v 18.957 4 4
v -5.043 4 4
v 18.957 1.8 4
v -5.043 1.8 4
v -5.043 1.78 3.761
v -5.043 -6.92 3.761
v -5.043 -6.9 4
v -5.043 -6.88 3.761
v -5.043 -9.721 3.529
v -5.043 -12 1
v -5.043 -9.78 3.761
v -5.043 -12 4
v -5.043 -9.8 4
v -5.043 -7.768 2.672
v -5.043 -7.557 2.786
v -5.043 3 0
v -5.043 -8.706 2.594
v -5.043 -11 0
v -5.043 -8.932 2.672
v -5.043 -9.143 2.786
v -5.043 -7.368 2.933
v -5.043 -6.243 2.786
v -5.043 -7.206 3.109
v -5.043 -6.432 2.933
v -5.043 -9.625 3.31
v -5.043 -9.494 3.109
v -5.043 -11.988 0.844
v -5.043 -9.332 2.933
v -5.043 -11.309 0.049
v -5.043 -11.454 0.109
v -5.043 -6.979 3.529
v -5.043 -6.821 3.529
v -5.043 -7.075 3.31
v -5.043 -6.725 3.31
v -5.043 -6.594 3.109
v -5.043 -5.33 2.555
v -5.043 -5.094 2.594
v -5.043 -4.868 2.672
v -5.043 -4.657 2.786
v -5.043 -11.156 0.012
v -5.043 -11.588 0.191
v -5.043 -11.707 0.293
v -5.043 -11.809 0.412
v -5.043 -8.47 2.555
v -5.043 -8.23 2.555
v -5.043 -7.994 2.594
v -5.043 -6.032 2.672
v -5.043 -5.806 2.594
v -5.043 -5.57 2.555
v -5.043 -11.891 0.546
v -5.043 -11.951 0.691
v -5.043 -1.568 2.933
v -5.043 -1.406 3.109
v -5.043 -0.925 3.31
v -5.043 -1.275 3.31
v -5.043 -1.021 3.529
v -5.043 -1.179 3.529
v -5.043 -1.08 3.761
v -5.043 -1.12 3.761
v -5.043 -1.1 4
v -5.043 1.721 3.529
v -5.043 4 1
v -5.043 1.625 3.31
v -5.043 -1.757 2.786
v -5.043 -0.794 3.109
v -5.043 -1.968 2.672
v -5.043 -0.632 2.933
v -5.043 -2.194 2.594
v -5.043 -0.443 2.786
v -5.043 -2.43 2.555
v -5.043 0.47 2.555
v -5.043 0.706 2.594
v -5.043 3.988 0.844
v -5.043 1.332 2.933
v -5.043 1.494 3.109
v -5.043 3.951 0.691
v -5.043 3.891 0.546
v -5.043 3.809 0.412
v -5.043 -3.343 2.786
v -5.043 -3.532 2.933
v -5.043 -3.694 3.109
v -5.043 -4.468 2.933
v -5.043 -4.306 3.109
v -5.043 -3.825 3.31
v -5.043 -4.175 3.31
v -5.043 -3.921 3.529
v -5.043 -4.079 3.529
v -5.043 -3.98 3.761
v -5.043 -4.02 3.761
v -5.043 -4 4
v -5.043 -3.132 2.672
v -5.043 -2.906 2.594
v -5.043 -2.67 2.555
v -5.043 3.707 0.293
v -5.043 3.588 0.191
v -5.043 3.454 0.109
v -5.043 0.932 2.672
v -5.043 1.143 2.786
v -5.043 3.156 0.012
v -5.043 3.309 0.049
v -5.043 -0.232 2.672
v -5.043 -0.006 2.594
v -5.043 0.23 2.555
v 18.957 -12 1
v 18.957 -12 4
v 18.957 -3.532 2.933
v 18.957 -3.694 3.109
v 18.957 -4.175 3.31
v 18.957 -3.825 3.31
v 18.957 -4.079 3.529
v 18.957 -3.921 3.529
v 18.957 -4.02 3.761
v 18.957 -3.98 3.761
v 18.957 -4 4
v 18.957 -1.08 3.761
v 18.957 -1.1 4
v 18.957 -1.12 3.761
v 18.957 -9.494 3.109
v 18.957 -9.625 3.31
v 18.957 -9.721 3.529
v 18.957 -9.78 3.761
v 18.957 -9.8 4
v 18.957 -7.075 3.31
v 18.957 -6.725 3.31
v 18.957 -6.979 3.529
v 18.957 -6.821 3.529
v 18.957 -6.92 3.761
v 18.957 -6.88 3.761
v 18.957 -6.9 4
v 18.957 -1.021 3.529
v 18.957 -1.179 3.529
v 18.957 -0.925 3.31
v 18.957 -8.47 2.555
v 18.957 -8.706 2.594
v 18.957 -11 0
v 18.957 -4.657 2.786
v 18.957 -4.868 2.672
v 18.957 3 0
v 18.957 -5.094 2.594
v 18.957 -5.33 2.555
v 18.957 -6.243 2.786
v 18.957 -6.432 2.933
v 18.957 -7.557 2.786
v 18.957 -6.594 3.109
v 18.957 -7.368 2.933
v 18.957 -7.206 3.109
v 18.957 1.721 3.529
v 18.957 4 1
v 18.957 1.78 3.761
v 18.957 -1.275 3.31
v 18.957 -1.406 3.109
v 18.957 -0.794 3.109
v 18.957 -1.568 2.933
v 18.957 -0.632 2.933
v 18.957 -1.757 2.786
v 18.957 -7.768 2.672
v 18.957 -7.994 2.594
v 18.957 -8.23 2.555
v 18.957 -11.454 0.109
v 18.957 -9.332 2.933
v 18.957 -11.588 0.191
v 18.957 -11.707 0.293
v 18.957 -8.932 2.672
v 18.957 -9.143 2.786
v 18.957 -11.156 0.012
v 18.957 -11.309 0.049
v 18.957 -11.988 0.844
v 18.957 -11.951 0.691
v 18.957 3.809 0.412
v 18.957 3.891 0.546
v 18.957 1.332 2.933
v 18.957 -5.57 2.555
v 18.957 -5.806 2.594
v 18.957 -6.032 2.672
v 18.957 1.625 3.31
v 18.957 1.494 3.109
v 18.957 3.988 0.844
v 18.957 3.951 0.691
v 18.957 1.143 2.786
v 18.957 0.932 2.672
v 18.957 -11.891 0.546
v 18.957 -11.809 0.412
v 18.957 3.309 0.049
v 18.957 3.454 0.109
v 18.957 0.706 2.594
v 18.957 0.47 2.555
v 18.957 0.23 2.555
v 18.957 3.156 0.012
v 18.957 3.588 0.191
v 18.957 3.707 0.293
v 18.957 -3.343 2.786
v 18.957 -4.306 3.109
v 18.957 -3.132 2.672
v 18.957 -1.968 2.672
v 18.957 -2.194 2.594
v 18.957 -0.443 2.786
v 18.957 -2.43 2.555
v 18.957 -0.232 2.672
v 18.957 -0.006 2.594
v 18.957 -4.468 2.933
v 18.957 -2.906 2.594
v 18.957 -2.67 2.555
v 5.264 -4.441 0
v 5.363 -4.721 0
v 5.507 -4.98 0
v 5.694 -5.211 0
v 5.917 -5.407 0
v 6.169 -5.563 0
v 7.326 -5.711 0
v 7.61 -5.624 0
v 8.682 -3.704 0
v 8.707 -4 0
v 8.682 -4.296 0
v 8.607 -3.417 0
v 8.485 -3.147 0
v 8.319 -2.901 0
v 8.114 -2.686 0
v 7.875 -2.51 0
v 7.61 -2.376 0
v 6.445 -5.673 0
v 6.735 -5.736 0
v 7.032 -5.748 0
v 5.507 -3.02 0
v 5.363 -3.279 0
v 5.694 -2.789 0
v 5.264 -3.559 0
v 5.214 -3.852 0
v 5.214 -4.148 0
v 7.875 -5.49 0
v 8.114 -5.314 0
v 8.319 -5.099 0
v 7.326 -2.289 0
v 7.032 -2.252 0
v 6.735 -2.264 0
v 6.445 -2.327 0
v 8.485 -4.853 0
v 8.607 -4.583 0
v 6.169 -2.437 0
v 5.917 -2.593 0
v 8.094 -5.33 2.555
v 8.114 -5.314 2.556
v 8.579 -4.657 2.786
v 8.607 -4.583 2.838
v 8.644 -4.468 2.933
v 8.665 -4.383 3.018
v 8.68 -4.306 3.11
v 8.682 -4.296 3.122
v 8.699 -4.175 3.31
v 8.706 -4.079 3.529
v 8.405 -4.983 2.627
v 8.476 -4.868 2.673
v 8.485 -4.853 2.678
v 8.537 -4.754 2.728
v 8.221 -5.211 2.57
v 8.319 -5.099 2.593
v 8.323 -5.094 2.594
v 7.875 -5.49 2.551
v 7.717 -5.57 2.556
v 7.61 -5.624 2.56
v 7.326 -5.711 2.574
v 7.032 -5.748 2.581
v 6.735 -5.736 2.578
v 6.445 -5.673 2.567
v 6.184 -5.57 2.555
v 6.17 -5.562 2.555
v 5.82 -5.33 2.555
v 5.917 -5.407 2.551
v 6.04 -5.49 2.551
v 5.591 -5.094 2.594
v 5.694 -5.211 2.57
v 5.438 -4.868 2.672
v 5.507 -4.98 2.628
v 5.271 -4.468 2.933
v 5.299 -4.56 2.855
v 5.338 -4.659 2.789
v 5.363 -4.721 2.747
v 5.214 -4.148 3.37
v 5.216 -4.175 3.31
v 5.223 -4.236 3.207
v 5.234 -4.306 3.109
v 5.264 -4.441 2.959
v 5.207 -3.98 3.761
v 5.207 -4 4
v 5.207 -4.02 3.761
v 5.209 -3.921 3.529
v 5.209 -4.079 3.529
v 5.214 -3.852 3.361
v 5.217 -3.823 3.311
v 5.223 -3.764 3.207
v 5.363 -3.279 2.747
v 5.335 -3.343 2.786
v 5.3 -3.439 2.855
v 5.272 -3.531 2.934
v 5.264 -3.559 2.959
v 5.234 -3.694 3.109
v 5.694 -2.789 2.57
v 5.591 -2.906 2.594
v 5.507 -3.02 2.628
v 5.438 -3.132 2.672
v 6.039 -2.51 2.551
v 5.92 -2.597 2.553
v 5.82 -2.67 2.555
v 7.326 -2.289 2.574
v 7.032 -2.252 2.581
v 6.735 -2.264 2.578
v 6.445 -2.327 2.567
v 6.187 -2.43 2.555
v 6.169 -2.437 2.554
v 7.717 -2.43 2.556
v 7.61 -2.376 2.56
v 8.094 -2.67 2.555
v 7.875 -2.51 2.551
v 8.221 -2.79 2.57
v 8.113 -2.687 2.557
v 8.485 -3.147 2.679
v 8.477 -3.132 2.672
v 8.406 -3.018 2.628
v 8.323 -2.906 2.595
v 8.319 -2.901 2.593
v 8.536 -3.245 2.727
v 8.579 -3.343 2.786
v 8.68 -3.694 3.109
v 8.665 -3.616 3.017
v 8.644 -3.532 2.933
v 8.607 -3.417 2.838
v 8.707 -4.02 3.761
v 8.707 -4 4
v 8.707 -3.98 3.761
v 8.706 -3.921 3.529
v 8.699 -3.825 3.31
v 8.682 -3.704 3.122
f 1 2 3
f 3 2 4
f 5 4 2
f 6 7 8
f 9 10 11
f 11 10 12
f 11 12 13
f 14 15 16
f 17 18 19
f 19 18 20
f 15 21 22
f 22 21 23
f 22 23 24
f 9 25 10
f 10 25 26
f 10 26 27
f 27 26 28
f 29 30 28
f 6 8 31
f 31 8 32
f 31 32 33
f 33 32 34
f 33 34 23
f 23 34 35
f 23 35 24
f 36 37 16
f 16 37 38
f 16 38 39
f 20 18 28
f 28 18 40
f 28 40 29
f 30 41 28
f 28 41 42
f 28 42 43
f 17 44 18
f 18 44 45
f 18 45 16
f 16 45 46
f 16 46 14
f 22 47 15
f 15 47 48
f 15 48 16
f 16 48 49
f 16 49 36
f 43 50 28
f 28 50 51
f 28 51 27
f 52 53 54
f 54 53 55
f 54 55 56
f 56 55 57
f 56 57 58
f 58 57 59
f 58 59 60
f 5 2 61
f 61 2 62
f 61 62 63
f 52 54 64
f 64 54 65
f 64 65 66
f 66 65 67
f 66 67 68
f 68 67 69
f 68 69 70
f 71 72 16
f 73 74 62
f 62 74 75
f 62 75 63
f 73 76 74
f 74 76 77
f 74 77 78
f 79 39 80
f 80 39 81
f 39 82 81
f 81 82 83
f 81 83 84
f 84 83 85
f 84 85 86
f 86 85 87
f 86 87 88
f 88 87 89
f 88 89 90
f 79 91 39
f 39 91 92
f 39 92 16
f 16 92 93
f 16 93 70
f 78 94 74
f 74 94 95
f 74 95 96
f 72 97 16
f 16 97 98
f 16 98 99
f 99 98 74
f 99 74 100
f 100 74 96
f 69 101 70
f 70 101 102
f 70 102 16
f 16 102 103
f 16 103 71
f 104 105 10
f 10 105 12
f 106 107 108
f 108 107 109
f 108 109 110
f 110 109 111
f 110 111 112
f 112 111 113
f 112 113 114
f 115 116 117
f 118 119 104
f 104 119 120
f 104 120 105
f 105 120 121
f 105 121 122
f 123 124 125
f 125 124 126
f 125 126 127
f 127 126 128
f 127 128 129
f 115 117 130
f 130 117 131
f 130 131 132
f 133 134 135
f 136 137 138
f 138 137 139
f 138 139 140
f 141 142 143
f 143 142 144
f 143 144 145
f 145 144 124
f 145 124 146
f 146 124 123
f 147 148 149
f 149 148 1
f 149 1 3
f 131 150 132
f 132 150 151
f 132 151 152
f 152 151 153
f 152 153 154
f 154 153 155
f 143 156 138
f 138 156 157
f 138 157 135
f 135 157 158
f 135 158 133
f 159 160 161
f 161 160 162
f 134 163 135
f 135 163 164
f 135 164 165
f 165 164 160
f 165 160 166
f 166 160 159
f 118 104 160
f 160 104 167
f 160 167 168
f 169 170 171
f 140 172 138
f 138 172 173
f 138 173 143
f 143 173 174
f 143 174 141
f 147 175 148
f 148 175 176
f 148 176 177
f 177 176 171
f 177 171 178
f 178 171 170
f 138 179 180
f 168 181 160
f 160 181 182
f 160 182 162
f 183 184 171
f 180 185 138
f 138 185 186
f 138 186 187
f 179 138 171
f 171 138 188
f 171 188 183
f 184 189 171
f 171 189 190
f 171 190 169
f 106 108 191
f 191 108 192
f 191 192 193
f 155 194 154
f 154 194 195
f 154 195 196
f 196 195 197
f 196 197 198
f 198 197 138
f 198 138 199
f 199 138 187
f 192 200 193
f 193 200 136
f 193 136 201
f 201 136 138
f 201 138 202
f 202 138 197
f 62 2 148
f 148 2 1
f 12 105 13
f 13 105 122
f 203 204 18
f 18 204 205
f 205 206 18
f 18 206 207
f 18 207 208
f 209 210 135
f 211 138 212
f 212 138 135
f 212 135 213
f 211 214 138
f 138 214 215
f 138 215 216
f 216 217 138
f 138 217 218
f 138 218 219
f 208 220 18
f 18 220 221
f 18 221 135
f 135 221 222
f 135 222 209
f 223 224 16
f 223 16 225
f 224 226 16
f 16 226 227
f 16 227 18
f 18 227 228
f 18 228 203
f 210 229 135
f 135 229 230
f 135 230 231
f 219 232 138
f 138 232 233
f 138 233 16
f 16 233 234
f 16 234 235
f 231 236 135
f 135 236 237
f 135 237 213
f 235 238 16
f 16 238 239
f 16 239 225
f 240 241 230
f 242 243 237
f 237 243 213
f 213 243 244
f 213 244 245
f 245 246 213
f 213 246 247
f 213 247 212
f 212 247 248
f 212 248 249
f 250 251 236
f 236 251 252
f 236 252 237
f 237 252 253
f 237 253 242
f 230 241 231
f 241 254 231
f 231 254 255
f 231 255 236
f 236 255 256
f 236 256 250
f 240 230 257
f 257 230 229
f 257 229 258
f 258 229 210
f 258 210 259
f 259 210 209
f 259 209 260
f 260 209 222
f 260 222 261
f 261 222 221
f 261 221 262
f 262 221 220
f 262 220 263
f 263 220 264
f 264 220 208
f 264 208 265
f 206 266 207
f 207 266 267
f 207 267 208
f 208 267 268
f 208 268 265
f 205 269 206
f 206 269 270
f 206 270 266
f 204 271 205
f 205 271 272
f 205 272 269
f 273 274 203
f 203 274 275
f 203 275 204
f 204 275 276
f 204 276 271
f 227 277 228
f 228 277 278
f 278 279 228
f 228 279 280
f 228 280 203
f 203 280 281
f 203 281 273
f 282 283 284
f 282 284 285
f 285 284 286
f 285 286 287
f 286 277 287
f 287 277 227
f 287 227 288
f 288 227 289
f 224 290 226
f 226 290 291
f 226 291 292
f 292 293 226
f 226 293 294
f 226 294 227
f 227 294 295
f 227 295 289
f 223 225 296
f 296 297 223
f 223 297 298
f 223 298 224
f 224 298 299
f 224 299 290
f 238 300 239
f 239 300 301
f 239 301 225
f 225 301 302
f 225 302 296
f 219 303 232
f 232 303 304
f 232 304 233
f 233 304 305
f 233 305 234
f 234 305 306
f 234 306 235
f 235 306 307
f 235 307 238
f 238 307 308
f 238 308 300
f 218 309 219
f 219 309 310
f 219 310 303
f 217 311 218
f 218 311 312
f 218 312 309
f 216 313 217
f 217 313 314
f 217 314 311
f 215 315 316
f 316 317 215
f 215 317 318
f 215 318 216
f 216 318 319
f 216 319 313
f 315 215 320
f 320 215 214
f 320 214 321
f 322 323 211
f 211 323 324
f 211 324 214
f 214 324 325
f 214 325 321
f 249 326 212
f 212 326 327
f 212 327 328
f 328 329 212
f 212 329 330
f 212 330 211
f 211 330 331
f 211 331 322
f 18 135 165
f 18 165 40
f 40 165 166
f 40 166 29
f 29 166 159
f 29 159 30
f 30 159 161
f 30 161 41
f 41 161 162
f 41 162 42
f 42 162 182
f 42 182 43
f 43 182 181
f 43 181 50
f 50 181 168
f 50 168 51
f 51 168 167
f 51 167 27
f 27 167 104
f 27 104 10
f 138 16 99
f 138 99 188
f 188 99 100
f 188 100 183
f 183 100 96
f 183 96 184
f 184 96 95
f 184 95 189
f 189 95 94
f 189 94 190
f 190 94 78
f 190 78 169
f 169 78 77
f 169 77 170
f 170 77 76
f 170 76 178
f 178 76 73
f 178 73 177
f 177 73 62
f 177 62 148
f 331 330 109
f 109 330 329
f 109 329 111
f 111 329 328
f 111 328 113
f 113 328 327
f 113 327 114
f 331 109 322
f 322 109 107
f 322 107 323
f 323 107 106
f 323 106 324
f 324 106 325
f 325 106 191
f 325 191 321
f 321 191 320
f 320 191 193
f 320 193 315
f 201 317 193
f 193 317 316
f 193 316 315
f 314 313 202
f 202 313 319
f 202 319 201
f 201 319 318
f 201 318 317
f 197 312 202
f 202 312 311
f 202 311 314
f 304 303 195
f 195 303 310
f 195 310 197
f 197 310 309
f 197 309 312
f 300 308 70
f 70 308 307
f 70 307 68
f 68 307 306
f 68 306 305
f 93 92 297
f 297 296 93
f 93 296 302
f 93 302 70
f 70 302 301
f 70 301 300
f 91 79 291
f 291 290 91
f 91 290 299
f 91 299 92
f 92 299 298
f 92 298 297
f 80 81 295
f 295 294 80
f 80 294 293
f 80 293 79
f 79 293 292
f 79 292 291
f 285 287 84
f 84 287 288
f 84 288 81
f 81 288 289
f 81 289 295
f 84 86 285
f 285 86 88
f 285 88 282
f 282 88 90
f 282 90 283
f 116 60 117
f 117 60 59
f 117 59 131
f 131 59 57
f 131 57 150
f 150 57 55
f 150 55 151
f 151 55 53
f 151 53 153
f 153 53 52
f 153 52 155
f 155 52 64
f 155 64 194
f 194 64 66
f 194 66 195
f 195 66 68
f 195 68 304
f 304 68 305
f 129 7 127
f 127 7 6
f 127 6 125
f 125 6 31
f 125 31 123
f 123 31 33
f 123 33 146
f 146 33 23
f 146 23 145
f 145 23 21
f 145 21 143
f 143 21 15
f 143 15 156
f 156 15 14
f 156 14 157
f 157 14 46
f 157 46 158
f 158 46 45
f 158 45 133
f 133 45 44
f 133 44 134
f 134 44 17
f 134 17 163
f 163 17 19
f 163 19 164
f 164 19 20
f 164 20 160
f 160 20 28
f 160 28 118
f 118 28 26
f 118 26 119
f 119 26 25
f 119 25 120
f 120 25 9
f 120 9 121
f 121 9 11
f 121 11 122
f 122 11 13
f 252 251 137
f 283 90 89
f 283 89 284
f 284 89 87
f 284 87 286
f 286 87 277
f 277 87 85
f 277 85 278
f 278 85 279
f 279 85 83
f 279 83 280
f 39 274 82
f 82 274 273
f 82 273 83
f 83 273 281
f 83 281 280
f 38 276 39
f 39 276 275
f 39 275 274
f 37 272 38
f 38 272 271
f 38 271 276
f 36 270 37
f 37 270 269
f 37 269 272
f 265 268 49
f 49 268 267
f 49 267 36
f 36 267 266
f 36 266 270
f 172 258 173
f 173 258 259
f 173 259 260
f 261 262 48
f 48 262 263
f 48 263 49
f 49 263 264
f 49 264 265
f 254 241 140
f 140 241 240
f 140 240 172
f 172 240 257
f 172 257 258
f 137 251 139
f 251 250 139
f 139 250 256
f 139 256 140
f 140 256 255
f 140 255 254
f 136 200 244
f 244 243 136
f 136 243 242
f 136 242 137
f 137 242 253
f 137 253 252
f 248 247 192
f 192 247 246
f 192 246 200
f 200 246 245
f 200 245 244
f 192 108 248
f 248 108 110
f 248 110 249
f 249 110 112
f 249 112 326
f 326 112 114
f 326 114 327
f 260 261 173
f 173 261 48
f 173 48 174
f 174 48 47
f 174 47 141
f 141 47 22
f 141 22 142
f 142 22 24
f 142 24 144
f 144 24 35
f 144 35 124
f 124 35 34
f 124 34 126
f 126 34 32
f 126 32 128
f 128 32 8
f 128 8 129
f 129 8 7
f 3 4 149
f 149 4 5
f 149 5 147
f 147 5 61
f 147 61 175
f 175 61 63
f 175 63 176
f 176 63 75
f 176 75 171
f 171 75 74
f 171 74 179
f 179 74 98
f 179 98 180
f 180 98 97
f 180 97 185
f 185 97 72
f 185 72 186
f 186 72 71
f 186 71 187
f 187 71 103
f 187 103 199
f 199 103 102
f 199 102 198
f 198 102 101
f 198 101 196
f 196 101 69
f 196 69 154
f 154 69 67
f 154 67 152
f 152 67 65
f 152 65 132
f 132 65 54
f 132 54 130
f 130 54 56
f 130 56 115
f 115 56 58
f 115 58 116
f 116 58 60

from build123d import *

# Parameters (mm, degrees)
SKETCH2_W           = 24
SKETCH2_H           = 16
BOSS_EXTRUDE1_DEPTH = 4
SKETCH3_R           = 1.75
CUT_EXTRUDE1_DEPTH  = 5
FILLET1_R           = 1
CUT_EXTRUDE2_DEPTH  = 29


with BuildPart() as part:
    # Sketch2 → Boss-Extrude1 (new body)
    with BuildSketch(Plane.XY):
        with Locations((6.957345972, -4)):
            Rectangle(SKETCH2_W, SKETCH2_H)
    extrude(amount=BOSS_EXTRUDE1_DEPTH)

    # Sketch3 → Cut-Extrude1 (cut)
    with BuildSketch(Plane.XY.offset(4)):
        with Locations((6.957345972, -4)):
            Circle(SKETCH3_R)
    extrude(amount=-CUT_EXTRUDE1_DEPTH, mode=Mode.SUBTRACT)

    # Fillet1
    fillet1_edges = [part.edges().sort_by_distance(p)[0] for p in [
        (6.957345972, 4, 0),
        (6.957345972, -12, 0),
    ]]
    fillet(fillet1_edges, radius=FILLET1_R)

    # Sketch4 → Cut-Extrude2 (cut)
    with BuildSketch(Plane.ZY.offset(5.042654028)):
        with BuildLine():
            ThreePointArc((5.45, -8.35), (5.025304833, -7.324695167), (4, -6.9))
            Line((4, -6.9), (4, -9.8))
            ThreePointArc((4, -9.8), (5.025304833, -9.375304833), (5.45, -8.35))
        make_face()
        with BuildLine():
            Line((4, -9.8), (4, -6.9))
            ThreePointArc((4, -6.9), (2.55, -8.35), (4, -9.8))
        make_face()
        with BuildLine():
            ThreePointArc((4, -6.9), (5.025304833, -6.475304833), (5.45, -5.45))
            ThreePointArc((5.45, -5.45), (5.025304832, -4.424695167), (3.999999999, -4))
            Line((4, -4), (4, -6.9))
        make_face()
        with BuildLine():
            Line((4, -6.9), (4, -4))
            ThreePointArc((3.999999999, -4), (2.55, -5.450000001), (4, -6.9))
        make_face()
        with BuildLine():
            ThreePointArc((4, -1.1), (2.55, -2.549999999), (3.999999999, -4))
            Line((4, -4), (4, -1.1))
        make_face()
        with BuildLine():
            Line((4, -1.1), (4, -4))
            ThreePointArc((3.999999999, -4), (5.025304832, -3.575304833), (5.45, -2.55))
            ThreePointArc((5.45, -2.55), (5.025304833, -1.524695167), (4, -1.1))
        make_face()
        with BuildLine():
            ThreePointArc((4, 1.8), (2.55, 0.35), (4, -1.1))
            Line((4, -1.1), (4, 1.8))
        make_face()
        with BuildLine():
            Line((4, 1.8), (4, -1.1))
            ThreePointArc((4, -1.1), (5.025304833, -0.675304833), (5.45, 0.35))
            ThreePointArc((5.45, 0.35), (5.025304833, 1.375304833), (4, 1.8))
        make_face()
    extrude(amount=-CUT_EXTRUDE2_DEPTH, mode=Mode.SUBTRACT)


solid = part.part
